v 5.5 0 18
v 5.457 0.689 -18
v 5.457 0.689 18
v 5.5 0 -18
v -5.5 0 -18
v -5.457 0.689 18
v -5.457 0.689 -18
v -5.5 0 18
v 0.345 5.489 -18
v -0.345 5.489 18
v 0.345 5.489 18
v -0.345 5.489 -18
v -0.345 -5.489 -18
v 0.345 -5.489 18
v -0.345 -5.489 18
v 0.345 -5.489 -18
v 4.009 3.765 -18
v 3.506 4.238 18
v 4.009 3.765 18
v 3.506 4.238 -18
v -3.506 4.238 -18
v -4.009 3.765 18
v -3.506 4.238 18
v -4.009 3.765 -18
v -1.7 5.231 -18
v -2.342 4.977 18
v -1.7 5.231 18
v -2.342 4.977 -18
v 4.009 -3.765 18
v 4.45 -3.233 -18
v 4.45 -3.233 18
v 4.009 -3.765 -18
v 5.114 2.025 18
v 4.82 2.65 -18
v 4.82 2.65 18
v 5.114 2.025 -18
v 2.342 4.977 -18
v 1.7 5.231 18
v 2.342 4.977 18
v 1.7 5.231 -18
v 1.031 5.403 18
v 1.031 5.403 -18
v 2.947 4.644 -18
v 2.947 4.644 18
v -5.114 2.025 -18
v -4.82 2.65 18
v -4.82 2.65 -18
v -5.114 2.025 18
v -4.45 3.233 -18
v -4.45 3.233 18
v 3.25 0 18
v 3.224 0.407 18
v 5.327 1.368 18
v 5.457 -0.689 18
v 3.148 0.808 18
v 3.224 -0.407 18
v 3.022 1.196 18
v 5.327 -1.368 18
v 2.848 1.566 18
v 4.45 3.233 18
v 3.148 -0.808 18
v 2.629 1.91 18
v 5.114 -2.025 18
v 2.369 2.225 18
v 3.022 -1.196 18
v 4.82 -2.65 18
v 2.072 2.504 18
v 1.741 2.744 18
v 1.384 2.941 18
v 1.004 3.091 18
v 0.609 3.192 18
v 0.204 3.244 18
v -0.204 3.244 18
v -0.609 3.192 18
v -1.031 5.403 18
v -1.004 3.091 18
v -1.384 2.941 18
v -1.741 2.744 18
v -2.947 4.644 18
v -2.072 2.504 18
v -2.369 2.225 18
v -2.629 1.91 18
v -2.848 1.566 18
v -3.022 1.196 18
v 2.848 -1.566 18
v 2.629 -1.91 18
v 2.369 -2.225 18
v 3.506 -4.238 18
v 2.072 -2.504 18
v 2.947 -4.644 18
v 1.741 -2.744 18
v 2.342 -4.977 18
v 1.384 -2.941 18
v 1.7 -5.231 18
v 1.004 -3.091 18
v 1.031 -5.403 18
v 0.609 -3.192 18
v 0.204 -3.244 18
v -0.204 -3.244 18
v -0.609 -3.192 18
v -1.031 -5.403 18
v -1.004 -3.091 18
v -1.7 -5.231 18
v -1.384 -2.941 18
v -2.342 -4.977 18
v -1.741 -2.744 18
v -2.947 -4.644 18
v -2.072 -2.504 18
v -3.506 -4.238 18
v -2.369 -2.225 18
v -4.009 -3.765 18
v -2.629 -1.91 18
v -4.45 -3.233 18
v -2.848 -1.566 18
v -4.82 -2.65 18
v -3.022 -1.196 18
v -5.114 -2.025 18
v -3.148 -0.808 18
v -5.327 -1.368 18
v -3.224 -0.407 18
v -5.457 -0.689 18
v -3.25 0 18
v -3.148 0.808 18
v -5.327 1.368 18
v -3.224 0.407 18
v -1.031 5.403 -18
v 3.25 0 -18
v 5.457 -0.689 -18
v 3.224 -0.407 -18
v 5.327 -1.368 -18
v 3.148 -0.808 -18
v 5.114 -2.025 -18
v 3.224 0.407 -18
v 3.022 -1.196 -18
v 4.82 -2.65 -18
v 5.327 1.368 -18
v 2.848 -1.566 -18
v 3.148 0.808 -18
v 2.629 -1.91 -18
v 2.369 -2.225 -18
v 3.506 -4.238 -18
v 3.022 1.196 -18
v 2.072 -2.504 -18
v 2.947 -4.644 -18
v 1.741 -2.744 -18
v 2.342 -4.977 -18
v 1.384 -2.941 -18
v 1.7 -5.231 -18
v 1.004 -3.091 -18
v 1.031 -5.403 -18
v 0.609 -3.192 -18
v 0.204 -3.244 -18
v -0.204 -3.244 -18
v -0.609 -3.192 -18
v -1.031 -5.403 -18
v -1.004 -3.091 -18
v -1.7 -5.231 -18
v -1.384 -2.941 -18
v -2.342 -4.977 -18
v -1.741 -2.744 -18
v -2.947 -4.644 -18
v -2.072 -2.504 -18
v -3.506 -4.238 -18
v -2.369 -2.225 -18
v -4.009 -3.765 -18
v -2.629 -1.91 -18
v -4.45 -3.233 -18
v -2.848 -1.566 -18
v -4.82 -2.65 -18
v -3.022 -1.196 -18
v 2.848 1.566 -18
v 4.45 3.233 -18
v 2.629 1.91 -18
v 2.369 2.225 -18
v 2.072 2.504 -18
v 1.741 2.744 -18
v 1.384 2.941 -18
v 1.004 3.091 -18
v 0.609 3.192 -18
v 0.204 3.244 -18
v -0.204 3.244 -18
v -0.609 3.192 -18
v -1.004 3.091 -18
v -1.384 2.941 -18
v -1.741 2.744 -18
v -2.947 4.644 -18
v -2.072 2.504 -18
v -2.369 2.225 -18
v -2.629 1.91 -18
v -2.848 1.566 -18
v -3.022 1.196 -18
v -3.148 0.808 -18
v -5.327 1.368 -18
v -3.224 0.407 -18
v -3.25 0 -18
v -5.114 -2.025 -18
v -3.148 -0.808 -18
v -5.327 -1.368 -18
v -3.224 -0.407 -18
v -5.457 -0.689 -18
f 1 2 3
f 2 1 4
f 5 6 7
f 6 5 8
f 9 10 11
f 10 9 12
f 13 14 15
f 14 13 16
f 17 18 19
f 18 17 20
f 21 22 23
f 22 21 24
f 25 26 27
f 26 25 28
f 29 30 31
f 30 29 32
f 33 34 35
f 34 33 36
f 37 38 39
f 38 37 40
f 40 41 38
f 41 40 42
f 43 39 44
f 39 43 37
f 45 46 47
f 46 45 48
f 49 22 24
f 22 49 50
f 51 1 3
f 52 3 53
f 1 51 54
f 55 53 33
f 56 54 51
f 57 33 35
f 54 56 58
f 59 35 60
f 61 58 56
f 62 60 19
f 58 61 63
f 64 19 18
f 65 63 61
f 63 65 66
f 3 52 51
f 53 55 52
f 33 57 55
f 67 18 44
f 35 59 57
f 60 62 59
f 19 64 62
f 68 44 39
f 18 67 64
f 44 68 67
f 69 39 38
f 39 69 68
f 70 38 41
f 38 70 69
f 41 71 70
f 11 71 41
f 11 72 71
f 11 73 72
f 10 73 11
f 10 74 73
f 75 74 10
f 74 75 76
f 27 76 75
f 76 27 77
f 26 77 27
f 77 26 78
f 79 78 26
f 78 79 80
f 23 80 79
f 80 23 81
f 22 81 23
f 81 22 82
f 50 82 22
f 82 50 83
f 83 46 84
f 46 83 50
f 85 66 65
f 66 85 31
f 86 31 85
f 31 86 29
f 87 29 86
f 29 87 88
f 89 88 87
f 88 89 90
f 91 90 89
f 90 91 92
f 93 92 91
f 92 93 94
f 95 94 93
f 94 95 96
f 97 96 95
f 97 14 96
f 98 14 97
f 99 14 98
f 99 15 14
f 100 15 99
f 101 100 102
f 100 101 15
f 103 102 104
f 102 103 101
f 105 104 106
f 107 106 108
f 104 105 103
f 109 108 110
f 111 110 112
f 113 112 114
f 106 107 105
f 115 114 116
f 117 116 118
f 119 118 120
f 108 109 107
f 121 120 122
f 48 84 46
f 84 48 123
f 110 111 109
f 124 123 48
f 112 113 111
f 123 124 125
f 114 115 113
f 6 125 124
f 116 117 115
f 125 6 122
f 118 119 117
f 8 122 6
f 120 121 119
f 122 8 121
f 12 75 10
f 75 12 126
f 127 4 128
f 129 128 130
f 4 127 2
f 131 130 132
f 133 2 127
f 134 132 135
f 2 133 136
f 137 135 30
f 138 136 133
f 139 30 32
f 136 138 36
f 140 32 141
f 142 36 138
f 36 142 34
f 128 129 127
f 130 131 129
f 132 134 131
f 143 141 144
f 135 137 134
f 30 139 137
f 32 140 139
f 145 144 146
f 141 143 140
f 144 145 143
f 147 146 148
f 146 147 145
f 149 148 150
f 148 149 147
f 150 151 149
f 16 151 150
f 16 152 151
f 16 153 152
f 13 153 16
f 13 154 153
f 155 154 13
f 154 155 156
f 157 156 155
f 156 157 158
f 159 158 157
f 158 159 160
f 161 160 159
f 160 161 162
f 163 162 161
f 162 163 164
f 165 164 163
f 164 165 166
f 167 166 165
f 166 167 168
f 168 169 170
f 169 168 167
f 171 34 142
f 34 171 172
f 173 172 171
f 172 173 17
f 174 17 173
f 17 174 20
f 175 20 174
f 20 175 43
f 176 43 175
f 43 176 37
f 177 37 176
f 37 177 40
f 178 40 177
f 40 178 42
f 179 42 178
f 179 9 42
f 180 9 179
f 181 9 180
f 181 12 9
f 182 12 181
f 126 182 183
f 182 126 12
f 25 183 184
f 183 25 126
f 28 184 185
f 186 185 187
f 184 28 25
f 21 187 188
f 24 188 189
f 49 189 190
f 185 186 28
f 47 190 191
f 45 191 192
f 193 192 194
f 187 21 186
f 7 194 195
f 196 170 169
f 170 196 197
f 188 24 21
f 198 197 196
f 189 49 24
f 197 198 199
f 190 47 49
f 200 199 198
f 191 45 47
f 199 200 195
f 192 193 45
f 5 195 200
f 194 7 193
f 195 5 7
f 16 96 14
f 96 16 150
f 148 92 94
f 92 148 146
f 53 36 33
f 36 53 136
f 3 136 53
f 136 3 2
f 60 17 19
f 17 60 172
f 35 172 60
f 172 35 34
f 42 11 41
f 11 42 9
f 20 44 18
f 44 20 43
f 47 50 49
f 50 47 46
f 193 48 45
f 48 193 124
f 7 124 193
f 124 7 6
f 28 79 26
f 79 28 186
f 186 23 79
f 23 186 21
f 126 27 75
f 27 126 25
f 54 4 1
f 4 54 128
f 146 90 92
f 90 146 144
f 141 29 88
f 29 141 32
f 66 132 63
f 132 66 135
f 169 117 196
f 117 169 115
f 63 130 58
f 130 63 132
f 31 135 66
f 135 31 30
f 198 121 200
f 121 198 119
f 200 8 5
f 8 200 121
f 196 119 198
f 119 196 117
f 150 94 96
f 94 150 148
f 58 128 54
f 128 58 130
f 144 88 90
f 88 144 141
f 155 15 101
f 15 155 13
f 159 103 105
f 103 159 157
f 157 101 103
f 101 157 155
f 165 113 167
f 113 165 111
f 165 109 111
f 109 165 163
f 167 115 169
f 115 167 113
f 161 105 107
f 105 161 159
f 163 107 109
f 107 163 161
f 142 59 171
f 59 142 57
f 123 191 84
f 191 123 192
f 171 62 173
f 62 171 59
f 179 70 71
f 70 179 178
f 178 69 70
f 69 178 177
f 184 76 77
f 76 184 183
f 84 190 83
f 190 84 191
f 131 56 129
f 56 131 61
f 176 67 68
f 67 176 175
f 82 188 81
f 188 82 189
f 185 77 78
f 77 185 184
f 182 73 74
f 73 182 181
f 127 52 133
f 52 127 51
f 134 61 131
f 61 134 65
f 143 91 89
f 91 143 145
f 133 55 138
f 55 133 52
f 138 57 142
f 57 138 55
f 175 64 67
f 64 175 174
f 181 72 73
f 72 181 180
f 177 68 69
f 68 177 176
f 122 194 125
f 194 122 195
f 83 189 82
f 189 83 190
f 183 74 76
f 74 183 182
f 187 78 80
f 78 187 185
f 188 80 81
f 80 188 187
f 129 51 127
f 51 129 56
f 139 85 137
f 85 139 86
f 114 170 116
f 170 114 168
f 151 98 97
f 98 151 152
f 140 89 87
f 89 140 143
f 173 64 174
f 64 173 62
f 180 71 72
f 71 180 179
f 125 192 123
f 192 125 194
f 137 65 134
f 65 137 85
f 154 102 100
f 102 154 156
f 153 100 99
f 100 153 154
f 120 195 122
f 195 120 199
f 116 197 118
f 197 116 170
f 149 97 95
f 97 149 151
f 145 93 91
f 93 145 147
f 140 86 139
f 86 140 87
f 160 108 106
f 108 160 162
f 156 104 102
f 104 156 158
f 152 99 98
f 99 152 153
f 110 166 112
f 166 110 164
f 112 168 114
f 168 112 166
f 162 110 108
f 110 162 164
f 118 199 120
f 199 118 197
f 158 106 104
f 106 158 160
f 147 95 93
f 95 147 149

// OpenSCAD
$fn = 50;


difference() {
	union() {
		translate(v = [0, 0, -18.0000000000]) {
			cylinder(h = 36, r = 5.5000000000);
		}
	}
	union() {
		translate(v = [0, 0, -100.0000000000]) {
			cylinder(h = 200, r = 3.2500000000);
		}
	}
}
